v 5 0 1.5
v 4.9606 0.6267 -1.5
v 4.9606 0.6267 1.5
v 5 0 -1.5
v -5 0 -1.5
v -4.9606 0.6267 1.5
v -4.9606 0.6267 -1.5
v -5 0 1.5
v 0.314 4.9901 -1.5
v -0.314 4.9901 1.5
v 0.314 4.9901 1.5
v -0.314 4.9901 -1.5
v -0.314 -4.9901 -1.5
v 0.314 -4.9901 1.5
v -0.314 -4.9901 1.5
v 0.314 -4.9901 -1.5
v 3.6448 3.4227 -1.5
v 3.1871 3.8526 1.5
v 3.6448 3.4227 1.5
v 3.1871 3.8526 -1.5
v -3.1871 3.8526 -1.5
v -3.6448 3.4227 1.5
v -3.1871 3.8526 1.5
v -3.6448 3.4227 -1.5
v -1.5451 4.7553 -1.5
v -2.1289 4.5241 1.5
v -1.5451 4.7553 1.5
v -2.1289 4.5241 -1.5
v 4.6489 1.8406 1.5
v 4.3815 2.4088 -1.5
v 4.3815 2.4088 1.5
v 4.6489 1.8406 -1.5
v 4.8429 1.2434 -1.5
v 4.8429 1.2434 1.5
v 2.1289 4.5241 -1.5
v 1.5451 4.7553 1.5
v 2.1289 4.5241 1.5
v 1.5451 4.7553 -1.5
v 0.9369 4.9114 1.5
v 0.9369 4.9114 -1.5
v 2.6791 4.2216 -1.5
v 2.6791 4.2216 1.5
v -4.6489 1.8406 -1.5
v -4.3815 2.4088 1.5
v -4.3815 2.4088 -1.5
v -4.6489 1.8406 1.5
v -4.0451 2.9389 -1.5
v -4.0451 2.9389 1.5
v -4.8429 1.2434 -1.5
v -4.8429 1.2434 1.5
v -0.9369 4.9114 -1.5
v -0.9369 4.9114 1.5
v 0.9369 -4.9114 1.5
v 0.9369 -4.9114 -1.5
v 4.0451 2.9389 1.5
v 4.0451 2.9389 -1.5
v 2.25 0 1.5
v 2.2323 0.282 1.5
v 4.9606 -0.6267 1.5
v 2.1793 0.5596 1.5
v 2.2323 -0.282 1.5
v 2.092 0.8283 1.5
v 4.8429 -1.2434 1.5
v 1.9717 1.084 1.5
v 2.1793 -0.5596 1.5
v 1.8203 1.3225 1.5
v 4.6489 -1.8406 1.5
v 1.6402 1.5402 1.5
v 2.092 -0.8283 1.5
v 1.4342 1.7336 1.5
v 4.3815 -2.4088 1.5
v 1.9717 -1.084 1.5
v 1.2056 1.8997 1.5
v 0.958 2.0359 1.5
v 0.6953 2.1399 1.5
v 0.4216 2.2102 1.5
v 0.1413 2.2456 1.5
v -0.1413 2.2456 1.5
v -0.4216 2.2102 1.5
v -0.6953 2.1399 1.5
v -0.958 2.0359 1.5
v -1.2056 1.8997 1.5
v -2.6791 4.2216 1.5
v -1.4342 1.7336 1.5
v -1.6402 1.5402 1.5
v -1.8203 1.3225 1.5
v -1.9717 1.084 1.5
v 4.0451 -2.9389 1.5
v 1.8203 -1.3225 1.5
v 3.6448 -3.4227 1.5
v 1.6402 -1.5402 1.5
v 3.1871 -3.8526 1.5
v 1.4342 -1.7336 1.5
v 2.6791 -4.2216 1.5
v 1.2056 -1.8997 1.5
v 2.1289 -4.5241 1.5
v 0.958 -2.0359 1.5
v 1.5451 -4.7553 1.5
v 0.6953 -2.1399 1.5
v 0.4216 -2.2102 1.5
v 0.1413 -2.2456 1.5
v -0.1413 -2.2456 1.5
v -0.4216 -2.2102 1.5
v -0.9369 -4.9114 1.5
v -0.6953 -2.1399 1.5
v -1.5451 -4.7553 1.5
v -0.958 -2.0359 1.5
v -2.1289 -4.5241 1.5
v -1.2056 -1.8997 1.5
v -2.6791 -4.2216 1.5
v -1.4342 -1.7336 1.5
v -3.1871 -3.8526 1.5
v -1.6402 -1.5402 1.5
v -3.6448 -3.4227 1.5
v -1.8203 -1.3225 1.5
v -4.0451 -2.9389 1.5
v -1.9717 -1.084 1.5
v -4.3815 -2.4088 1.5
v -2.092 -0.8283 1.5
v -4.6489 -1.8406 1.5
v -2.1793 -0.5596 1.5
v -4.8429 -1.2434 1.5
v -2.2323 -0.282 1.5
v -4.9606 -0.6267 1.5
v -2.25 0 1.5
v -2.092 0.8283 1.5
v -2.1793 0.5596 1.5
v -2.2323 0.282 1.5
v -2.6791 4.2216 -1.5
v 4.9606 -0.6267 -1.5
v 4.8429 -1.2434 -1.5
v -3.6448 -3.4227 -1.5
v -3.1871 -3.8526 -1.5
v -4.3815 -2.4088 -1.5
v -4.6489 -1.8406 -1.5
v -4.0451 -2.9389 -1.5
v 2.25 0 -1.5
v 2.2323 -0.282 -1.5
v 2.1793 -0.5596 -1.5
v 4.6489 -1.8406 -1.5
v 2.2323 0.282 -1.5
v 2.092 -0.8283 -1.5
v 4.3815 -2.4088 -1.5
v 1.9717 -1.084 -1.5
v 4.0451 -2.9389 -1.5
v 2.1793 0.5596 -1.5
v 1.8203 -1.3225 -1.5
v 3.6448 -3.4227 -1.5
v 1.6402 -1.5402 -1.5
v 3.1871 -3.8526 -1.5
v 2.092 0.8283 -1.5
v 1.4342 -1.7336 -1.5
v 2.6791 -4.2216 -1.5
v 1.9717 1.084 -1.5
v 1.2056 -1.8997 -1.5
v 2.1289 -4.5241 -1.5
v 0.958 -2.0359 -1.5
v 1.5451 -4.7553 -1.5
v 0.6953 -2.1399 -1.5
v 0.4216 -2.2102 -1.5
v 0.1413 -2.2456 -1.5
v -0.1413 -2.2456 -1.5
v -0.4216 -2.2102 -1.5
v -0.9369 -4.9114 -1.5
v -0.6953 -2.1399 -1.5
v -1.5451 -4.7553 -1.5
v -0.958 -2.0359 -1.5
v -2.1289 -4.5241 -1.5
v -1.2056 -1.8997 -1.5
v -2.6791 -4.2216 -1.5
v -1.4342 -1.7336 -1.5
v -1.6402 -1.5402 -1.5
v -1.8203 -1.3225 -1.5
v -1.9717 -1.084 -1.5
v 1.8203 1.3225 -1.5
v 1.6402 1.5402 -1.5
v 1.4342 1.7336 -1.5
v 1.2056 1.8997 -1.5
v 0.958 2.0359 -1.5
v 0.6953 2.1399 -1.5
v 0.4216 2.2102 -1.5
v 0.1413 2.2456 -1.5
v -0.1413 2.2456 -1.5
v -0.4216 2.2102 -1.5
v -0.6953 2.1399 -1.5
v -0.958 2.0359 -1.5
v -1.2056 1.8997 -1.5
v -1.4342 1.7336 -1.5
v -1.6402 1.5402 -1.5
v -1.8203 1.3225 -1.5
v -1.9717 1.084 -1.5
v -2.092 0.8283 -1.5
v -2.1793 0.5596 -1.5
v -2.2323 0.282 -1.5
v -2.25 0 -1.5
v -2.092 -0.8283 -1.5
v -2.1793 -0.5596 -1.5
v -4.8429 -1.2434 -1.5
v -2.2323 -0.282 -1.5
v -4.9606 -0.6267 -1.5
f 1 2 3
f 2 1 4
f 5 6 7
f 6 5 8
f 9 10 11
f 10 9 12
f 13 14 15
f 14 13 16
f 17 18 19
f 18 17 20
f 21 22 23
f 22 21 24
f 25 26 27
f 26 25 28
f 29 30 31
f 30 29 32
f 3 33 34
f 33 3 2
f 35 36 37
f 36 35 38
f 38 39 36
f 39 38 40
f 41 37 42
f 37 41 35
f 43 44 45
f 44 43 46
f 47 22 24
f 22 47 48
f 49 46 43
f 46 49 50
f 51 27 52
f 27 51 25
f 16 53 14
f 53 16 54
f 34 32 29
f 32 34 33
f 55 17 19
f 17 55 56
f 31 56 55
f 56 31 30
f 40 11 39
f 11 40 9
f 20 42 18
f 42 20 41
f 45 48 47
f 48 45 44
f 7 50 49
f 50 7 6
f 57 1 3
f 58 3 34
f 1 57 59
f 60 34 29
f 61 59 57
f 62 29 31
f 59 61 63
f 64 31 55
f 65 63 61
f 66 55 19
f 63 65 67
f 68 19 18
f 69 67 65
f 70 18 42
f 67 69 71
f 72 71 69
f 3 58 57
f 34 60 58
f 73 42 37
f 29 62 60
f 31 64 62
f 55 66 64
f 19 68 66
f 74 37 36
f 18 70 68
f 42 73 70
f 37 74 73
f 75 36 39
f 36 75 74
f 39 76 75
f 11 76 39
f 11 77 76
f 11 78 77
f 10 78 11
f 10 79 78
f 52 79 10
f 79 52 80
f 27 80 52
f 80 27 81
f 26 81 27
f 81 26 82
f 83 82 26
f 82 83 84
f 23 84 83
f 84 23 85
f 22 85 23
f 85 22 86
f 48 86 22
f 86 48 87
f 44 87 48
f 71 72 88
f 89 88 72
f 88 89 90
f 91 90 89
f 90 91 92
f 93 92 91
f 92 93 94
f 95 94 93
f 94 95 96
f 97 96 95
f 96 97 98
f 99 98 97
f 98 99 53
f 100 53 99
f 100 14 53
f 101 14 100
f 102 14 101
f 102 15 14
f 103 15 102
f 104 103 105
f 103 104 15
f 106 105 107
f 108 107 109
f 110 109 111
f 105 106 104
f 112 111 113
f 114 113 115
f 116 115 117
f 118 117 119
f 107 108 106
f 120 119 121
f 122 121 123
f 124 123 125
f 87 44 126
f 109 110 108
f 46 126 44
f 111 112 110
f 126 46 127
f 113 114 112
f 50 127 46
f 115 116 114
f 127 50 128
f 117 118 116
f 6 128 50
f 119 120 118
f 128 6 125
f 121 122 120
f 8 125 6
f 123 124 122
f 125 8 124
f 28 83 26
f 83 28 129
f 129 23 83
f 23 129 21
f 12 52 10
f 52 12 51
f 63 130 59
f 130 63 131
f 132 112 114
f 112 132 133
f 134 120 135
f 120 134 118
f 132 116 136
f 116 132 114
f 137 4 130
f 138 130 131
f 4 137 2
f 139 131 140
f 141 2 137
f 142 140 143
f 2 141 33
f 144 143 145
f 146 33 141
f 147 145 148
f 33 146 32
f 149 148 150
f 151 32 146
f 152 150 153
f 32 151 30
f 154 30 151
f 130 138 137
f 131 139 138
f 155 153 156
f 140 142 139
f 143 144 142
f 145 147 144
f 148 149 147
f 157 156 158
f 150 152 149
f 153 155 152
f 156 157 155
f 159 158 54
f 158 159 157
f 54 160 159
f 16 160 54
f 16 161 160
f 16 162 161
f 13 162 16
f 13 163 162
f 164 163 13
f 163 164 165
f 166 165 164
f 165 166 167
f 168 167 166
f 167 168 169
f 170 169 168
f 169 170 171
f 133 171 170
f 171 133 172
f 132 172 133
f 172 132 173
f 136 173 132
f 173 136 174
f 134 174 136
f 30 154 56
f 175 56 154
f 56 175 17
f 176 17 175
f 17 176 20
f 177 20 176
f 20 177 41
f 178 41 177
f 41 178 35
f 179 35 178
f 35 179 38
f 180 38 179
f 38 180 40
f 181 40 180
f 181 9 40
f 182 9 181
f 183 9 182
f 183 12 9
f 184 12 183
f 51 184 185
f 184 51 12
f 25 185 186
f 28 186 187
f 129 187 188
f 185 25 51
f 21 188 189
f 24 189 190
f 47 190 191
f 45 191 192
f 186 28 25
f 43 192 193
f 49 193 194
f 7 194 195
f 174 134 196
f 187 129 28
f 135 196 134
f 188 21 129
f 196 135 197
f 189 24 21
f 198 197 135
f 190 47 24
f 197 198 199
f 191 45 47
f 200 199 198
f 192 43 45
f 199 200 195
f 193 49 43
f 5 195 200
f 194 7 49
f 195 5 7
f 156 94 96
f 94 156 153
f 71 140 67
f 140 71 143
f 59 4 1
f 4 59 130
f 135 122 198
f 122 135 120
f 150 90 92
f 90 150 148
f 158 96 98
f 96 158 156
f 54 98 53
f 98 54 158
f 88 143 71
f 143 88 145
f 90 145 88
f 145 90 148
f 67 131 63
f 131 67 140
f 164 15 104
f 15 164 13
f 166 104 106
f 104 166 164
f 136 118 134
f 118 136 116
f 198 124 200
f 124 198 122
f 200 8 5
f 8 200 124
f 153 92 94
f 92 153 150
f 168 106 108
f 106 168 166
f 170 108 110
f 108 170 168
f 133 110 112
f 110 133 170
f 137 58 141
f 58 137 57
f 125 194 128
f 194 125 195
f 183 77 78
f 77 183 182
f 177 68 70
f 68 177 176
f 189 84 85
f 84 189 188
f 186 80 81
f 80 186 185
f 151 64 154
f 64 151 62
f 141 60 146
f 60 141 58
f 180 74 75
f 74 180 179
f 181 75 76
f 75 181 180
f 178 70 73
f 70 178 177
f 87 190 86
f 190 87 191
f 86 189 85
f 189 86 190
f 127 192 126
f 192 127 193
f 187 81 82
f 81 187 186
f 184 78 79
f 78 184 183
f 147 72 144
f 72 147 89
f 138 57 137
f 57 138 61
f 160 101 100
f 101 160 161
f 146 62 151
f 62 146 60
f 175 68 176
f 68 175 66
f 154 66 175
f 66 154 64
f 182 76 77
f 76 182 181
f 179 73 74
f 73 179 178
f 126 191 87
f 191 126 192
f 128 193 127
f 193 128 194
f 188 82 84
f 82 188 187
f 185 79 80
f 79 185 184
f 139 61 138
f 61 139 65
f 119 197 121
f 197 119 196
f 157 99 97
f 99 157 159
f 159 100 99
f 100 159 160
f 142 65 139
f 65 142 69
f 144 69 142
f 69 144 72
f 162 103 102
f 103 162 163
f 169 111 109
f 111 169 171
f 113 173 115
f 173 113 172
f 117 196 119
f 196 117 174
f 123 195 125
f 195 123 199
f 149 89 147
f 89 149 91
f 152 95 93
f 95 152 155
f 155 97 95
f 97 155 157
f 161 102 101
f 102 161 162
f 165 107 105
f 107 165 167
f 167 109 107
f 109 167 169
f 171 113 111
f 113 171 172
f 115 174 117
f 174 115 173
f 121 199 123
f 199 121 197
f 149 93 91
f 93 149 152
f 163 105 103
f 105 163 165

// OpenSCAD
$fn = 50;


difference() {
	union() {
		translate(v = [0, 0, -1.5000000000]) {
			cylinder(h = 3, r = 5.0000000000);
		}
	}
	union() {
		translate(v = [0, 0, -100.0000000000]) {
			cylinder(h = 200, r = 2.2500000000);
		}
	}
}
